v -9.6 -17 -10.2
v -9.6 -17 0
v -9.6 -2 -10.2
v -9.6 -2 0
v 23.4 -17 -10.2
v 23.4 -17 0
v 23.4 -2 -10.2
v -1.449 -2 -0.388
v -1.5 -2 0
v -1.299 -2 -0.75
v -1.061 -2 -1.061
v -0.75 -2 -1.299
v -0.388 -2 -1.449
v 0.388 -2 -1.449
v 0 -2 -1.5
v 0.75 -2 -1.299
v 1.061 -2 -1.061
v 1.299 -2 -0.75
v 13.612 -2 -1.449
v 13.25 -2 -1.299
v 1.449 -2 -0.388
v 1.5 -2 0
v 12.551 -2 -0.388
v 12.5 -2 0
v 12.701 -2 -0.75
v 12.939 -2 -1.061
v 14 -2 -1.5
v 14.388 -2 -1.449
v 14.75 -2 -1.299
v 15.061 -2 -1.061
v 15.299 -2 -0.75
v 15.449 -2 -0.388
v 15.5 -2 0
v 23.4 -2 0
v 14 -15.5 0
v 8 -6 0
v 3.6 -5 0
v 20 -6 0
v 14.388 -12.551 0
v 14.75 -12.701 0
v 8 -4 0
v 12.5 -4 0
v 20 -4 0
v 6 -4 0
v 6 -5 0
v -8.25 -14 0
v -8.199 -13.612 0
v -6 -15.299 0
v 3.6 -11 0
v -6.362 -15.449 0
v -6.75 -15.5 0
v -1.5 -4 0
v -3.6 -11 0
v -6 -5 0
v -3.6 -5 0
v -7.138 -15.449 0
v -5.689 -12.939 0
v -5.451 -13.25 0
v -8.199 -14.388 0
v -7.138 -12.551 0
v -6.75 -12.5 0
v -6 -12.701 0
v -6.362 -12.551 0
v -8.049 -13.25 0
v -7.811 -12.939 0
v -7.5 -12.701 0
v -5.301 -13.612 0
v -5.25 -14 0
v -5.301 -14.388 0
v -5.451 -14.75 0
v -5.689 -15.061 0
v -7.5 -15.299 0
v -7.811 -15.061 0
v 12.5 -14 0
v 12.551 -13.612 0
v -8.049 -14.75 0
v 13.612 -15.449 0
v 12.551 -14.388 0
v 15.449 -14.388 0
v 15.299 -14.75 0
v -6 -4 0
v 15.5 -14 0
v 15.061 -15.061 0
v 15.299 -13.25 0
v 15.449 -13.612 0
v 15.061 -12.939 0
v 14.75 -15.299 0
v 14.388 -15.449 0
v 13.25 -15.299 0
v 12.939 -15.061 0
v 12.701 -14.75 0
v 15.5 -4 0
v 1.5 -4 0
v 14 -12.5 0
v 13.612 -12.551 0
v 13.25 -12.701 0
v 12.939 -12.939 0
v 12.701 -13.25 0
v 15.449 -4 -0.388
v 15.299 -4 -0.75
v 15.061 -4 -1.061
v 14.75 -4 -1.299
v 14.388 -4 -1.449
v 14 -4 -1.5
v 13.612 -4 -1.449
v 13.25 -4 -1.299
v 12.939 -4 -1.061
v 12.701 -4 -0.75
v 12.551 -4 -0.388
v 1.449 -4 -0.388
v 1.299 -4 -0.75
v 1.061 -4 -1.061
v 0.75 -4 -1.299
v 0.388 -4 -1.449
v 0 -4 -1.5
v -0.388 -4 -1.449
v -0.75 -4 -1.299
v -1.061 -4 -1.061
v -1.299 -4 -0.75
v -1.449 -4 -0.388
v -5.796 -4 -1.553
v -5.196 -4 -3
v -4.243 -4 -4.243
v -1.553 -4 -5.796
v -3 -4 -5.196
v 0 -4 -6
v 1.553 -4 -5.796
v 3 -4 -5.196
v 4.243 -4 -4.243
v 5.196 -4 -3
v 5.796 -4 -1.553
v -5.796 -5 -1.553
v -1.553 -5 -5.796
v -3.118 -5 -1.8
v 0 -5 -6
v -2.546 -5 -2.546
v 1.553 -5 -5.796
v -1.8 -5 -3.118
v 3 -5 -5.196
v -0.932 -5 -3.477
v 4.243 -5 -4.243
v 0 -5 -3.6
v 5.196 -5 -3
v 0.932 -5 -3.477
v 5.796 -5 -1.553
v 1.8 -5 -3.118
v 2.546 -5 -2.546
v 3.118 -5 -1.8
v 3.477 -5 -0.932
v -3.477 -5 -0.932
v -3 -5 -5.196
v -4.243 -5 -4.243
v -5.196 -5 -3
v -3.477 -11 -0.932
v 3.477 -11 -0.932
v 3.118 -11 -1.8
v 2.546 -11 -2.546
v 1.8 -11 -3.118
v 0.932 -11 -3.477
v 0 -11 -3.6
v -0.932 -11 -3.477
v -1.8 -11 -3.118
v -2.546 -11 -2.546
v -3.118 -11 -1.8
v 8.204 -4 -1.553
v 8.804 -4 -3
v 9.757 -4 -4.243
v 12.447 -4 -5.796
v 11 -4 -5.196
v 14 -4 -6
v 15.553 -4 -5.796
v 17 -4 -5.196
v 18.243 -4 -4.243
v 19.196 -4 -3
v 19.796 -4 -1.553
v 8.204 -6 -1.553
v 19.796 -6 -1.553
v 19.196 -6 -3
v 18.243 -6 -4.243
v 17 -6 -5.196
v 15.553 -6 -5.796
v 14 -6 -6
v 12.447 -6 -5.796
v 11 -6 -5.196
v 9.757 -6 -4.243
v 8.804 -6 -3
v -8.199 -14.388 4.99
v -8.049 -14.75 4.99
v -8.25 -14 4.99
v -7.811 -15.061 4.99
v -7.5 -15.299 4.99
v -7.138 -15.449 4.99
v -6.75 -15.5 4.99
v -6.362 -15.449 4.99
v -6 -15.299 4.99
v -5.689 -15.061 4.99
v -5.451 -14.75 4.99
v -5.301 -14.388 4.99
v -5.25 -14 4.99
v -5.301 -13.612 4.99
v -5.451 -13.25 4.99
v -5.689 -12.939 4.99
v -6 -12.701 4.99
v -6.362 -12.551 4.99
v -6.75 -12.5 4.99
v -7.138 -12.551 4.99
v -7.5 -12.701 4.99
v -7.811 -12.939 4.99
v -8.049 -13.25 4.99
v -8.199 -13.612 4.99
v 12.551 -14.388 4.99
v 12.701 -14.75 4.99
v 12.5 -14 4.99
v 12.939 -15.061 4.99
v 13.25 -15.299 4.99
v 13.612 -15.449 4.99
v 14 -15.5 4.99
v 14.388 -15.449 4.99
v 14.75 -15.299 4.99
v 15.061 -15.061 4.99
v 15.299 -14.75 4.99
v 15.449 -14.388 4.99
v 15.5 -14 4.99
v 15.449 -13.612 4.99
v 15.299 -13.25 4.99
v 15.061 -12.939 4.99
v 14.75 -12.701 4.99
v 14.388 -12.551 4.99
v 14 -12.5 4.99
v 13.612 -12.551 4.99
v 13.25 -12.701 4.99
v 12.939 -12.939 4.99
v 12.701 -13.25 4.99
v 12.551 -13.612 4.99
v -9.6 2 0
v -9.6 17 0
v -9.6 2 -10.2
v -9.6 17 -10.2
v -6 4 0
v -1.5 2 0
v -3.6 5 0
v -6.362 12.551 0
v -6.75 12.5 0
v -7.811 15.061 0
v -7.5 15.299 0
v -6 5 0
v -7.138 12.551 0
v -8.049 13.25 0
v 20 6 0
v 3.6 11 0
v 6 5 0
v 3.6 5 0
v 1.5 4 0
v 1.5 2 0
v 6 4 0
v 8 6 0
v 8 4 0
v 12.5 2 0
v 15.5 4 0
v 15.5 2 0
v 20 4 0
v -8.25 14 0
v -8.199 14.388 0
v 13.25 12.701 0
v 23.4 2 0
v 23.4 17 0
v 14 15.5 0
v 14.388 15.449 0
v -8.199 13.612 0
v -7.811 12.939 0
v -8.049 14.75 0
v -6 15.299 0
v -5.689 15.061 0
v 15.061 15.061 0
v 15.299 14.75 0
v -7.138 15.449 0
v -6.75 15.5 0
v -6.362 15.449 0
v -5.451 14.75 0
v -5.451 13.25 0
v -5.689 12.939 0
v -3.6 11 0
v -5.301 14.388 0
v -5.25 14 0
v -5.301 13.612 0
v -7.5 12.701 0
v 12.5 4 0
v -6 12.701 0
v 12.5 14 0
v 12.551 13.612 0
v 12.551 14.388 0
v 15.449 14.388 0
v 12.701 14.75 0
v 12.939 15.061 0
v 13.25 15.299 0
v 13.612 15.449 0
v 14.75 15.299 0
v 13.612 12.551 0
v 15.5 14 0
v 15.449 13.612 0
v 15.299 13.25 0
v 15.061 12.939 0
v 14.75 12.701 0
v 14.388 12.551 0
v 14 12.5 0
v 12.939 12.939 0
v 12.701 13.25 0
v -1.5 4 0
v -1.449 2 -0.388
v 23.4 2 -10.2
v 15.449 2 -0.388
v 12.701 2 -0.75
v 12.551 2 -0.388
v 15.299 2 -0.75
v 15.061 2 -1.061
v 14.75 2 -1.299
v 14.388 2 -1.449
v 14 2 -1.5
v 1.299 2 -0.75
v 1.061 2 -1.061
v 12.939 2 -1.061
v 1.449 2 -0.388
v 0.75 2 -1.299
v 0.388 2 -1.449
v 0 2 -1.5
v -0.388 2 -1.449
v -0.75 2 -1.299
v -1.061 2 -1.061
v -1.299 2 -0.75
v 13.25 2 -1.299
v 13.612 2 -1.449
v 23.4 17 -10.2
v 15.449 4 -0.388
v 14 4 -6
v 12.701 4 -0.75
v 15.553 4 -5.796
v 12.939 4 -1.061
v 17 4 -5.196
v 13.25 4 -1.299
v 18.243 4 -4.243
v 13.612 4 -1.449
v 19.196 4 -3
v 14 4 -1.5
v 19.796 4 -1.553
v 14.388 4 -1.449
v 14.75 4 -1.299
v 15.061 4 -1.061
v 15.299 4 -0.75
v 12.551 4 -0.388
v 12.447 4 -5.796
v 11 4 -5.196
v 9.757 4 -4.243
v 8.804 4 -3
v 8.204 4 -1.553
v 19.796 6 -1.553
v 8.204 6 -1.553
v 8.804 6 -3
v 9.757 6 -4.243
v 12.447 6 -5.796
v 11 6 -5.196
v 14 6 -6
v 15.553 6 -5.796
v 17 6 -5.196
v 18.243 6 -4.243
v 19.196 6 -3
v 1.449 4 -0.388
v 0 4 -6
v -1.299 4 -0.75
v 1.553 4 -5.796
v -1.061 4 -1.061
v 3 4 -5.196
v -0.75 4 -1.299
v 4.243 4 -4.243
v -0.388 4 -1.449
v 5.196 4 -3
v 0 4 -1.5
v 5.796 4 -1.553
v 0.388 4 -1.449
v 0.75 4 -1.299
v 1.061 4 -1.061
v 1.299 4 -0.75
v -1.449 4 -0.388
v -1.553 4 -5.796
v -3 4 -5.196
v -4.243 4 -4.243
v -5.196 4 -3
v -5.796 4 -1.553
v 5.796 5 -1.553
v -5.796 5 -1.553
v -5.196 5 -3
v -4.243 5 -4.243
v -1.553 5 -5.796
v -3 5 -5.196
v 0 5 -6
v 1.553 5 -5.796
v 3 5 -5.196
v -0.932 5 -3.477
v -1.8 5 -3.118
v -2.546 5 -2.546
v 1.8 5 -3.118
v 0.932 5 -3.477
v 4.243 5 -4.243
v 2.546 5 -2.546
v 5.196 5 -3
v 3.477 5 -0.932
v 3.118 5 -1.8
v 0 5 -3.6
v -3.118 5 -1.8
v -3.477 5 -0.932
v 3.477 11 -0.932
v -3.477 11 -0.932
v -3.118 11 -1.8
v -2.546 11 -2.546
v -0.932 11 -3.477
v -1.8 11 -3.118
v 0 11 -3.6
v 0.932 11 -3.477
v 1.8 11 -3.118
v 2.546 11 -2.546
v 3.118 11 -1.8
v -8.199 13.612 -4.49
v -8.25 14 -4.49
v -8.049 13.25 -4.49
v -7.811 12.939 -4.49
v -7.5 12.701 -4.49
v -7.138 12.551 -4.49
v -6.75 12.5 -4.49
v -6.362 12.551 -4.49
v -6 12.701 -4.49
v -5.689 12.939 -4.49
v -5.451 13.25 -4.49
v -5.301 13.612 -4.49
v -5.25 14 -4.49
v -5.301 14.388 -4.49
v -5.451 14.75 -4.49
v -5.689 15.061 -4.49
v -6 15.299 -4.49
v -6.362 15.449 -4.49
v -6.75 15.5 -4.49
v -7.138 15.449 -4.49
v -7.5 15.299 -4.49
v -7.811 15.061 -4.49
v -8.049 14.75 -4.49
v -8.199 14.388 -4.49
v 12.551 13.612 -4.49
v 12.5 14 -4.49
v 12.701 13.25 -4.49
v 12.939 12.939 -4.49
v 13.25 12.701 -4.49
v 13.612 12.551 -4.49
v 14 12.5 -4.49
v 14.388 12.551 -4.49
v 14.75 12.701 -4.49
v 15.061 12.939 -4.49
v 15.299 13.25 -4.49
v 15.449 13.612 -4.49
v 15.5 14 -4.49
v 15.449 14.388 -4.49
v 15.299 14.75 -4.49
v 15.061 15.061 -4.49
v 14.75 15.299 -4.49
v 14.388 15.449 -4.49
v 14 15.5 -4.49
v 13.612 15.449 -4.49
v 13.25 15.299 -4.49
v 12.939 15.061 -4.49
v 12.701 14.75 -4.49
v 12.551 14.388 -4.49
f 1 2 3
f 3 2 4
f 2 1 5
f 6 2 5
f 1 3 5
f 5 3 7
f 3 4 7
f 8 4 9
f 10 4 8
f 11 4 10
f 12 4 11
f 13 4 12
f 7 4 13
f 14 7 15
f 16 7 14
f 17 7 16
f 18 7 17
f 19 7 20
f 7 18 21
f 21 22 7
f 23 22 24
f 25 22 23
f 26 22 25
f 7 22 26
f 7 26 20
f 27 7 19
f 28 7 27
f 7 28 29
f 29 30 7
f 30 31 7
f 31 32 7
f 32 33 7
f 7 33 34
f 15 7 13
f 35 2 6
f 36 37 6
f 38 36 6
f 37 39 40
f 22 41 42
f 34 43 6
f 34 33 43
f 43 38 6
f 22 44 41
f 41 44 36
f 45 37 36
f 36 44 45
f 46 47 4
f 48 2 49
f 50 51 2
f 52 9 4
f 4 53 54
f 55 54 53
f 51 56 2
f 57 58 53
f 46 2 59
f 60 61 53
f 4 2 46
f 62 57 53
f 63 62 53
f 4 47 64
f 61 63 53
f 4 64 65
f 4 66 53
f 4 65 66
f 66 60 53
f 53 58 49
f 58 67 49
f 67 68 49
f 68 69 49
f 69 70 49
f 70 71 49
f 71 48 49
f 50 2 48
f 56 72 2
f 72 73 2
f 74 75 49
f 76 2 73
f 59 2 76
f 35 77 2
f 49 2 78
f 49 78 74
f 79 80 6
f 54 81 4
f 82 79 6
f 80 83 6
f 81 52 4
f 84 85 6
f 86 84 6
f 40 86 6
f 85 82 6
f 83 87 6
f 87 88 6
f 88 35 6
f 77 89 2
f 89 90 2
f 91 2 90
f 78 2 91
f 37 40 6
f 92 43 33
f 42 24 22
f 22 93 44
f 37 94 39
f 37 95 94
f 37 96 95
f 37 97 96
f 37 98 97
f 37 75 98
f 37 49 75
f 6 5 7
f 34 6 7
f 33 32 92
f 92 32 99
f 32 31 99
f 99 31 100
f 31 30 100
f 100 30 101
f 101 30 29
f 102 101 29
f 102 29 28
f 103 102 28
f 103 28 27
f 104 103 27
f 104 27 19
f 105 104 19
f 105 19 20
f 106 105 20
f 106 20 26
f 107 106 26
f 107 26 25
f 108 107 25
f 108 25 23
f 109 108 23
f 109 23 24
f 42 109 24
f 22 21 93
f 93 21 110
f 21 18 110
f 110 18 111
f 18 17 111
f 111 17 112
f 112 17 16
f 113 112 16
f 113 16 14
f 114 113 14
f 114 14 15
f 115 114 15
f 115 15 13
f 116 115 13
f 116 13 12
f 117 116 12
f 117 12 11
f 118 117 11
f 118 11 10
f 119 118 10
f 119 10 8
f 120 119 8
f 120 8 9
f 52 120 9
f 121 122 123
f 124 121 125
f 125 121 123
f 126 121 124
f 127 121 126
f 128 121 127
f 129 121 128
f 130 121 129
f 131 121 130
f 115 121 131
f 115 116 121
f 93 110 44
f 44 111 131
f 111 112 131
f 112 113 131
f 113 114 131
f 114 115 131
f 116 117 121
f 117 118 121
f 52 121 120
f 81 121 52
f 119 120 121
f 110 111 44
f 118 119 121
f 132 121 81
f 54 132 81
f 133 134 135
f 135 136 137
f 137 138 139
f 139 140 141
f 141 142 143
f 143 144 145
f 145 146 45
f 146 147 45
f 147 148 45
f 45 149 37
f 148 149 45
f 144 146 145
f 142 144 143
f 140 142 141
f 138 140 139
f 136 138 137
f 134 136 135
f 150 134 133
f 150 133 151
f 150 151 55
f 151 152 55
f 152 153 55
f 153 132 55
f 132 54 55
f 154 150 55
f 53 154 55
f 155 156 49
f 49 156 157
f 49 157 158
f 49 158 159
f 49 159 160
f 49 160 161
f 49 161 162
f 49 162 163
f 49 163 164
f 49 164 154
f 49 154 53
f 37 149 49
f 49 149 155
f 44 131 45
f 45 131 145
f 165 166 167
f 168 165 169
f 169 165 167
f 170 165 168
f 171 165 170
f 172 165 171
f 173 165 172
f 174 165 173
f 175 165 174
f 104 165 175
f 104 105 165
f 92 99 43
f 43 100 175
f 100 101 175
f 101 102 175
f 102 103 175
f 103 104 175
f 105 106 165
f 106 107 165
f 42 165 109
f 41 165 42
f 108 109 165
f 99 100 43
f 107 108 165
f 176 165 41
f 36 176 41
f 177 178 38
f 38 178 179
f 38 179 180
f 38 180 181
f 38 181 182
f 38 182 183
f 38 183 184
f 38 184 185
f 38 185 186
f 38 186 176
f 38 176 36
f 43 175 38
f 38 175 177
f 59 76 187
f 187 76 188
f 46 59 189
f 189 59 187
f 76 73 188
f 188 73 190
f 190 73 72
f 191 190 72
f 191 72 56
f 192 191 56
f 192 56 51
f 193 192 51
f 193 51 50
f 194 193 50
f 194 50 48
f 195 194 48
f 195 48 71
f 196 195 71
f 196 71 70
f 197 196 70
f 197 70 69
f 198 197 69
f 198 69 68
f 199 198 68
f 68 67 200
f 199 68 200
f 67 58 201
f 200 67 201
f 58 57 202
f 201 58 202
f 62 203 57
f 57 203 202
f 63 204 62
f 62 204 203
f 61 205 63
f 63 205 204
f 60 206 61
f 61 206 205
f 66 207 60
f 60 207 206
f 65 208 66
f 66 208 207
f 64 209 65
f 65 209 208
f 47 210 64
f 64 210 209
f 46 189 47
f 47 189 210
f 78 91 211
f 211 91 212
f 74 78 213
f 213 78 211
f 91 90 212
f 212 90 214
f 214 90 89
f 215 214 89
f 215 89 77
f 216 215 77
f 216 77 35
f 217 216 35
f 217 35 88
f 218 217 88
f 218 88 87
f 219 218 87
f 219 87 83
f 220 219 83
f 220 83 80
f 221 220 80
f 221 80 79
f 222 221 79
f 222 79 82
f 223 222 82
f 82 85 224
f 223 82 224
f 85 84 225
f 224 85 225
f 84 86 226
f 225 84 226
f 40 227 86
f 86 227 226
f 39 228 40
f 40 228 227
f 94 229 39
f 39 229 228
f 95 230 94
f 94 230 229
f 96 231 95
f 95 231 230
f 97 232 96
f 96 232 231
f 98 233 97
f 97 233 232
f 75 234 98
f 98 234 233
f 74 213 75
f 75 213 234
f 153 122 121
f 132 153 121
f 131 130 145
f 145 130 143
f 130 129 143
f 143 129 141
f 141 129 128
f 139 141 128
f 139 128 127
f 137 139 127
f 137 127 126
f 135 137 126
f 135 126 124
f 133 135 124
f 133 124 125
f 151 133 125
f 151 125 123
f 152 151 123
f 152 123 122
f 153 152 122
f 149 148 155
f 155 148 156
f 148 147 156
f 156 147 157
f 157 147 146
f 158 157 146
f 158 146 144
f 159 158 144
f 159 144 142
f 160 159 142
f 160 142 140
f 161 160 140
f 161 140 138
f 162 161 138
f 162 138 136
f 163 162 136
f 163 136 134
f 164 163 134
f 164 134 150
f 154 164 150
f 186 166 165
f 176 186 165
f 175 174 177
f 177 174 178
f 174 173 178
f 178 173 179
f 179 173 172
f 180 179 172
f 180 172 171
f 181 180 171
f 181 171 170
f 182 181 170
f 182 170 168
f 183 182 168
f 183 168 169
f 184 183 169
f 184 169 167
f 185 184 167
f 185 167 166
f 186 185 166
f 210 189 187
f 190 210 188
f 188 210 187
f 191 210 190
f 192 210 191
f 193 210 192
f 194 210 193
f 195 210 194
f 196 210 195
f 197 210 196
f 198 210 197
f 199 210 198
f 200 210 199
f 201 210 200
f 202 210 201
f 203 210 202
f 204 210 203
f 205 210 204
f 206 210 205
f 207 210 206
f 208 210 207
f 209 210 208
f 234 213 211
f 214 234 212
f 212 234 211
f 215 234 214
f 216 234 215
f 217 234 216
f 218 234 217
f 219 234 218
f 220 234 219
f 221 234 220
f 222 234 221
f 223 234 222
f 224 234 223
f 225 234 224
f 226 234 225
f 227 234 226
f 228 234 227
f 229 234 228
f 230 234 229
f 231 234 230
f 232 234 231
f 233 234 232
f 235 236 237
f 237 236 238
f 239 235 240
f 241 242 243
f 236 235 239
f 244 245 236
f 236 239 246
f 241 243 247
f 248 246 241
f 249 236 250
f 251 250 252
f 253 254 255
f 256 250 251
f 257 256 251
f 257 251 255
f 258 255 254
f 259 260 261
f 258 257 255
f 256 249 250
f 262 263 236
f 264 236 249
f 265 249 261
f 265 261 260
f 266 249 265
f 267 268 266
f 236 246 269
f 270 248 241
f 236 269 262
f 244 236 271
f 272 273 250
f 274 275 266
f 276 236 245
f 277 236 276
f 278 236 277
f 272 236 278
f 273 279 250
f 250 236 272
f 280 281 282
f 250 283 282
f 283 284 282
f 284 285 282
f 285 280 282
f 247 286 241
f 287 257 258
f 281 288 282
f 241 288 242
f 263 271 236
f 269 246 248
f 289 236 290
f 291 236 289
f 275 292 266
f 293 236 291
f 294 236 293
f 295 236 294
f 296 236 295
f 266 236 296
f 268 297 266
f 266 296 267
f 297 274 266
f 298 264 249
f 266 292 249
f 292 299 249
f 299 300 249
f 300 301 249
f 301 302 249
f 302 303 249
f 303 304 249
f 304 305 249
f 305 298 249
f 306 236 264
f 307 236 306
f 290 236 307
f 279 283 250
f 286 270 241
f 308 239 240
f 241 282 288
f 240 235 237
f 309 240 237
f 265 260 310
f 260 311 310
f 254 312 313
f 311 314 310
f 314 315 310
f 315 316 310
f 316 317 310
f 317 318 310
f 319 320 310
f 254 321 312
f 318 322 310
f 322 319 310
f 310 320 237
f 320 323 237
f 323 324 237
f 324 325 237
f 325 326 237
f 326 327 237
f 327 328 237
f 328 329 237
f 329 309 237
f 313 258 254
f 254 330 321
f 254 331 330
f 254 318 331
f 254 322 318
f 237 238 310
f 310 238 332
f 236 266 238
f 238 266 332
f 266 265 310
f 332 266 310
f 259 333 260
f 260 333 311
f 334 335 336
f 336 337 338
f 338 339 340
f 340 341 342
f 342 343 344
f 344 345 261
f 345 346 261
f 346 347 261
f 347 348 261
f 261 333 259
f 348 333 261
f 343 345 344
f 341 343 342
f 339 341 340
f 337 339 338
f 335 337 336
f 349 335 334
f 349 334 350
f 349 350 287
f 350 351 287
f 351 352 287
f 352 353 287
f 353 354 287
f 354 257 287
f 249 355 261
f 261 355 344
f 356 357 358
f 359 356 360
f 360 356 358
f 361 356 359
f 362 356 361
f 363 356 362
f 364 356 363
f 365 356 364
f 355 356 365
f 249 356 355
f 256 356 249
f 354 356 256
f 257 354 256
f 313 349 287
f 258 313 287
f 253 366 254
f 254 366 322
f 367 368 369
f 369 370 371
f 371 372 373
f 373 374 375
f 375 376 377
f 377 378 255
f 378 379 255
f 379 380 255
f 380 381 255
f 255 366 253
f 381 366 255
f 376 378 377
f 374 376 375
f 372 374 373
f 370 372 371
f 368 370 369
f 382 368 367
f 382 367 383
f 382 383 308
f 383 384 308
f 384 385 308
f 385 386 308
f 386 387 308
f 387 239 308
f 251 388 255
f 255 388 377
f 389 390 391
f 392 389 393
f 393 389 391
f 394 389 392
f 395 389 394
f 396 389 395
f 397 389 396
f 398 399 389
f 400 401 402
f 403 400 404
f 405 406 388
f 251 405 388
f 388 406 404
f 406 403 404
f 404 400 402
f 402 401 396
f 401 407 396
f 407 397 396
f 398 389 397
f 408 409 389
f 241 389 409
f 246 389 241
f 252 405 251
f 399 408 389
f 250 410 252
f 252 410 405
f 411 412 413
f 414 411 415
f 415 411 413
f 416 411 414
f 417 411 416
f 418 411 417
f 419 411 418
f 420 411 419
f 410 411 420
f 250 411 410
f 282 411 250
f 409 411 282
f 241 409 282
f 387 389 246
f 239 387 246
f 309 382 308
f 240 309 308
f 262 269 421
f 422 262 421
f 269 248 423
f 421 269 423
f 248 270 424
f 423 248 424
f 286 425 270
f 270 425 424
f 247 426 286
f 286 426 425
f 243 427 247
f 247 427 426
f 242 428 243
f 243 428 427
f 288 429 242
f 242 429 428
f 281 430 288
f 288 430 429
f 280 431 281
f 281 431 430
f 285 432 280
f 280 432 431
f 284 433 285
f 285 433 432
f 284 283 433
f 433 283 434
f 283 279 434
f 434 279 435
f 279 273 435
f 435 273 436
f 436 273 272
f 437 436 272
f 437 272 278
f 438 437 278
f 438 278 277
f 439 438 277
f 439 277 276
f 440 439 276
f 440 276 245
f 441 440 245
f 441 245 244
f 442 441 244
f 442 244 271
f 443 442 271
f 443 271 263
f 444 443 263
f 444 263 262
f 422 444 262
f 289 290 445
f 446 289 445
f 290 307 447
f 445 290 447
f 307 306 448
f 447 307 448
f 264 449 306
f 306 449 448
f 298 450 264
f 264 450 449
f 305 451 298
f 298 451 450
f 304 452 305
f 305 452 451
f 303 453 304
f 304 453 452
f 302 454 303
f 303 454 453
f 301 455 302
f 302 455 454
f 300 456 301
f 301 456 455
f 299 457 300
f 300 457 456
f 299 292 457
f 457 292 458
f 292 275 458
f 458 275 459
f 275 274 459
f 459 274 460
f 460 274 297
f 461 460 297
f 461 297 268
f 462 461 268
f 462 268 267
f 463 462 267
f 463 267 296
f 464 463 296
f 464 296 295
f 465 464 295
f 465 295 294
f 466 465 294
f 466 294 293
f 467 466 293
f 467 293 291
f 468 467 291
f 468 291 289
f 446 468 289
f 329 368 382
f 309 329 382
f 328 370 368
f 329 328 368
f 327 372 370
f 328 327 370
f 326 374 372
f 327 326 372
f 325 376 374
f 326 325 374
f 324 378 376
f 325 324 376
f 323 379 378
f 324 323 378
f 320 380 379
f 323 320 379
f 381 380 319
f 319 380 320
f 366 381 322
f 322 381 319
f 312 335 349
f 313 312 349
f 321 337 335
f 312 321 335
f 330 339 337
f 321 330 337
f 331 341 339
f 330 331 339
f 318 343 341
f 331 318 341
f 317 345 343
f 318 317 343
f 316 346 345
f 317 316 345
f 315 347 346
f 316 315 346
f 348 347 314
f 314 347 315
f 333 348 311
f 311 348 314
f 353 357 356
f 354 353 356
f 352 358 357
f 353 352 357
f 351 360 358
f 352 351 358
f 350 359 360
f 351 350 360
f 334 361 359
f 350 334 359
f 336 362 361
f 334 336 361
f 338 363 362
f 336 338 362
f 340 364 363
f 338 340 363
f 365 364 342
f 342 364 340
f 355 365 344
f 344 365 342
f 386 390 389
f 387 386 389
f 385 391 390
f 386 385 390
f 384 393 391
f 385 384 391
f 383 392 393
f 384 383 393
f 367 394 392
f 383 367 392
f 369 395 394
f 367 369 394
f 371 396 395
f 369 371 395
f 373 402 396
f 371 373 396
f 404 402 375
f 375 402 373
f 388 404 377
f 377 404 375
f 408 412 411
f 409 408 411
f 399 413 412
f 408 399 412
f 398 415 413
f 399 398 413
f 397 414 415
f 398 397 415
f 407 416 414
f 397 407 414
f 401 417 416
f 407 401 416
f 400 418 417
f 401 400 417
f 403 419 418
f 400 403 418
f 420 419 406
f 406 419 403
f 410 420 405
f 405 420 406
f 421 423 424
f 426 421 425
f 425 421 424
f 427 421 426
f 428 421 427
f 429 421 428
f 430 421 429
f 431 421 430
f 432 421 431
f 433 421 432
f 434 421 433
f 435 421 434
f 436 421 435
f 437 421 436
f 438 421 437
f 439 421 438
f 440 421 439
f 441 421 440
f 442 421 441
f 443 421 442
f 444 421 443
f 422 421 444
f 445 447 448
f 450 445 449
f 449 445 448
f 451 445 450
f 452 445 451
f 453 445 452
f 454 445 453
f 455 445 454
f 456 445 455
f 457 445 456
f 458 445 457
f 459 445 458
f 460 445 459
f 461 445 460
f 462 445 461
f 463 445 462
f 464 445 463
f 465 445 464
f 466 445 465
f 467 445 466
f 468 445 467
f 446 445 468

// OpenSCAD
$fn=24;
part_space=2;
r_hole=1.8;
thk_material=5;
thk_base=1;
thk_mouldcap=2;
r_base=6;
s_clearance=1.05;

h_peg=thk_base*2+thk_material;
r_ctr_peg=r_hole*2;
h_block=h_peg+thk_mouldcap;

x_mould = r_base*5.5;
y_mould = r_base*3.4;
z_mould = h_peg+thk_mouldcap*4;

s_peg = 3;
l_peg = 5;

do_parts=false;

if (do_parts) {
  two_parts();
}
else {
  mould_parts();
}

module mould_parts() {
  translate([0, -part_space, 0])
    rotate([90,0,0])
    mould_a();
  translate([0, part_space, 0])
    rotate([-90,0,0])
    mould_b();
}

module mould_a() {
  union() {
    difference() {
        translate([-r_base*1.6, -r_base*1.7, 0])
          cube([x_mould,y_mould/2, z_mould]);
        translate([0, 0, thk_mouldcap])
          two_parts();
      translate([0,0, -h_peg/3])
        cylinder(r=s_peg/2, h=l_peg);
      translate([r_base*2 + part_space, 0, -l_peg/2])  
        cylinder(r=s_peg/2, h=l_peg);
    }
    translate([-r_base-s_peg/4, l_peg-0.01, z_mould-s_peg])
      rotate([90, 0, 0])
      cylinder(r=s_peg/2, h=l_peg);
    translate([r_base*2+part_space, l_peg-0.01, z_mould-s_peg])
      rotate([90, 0, 0])
      cylinder(r=s_peg/2, h=l_peg);
  }
}

module mould_b() {
  difference() {
      translate([-r_base*1.6, 0, 0])
        cube([x_mould,y_mould/2, z_mould]);
      translate([0, 0, thk_mouldcap])
        two_parts();
    translate([0, -0.5, 0])
      mould_a();
    translate([0, 0, -l_peg/3])
      cylinder(r=s_peg/2, h=l_peg);
    translate([r_base*2 + part_space, 0, -l_peg/2])
      cylinder(r=s_peg/2, h=l_peg);
  }
}

module two_parts() {
  part_a();

  translate([r_base*2+part_space,0,0])
    part_b();
}

module part_b() {
  cylinder(r=r_base, h=thk_base*2);
}

module part_a() {
  union() {
    cylinder(r=r_base, h=thk_base);
    cylinder(r=r_ctr_peg, h=h_peg);
  }
}
